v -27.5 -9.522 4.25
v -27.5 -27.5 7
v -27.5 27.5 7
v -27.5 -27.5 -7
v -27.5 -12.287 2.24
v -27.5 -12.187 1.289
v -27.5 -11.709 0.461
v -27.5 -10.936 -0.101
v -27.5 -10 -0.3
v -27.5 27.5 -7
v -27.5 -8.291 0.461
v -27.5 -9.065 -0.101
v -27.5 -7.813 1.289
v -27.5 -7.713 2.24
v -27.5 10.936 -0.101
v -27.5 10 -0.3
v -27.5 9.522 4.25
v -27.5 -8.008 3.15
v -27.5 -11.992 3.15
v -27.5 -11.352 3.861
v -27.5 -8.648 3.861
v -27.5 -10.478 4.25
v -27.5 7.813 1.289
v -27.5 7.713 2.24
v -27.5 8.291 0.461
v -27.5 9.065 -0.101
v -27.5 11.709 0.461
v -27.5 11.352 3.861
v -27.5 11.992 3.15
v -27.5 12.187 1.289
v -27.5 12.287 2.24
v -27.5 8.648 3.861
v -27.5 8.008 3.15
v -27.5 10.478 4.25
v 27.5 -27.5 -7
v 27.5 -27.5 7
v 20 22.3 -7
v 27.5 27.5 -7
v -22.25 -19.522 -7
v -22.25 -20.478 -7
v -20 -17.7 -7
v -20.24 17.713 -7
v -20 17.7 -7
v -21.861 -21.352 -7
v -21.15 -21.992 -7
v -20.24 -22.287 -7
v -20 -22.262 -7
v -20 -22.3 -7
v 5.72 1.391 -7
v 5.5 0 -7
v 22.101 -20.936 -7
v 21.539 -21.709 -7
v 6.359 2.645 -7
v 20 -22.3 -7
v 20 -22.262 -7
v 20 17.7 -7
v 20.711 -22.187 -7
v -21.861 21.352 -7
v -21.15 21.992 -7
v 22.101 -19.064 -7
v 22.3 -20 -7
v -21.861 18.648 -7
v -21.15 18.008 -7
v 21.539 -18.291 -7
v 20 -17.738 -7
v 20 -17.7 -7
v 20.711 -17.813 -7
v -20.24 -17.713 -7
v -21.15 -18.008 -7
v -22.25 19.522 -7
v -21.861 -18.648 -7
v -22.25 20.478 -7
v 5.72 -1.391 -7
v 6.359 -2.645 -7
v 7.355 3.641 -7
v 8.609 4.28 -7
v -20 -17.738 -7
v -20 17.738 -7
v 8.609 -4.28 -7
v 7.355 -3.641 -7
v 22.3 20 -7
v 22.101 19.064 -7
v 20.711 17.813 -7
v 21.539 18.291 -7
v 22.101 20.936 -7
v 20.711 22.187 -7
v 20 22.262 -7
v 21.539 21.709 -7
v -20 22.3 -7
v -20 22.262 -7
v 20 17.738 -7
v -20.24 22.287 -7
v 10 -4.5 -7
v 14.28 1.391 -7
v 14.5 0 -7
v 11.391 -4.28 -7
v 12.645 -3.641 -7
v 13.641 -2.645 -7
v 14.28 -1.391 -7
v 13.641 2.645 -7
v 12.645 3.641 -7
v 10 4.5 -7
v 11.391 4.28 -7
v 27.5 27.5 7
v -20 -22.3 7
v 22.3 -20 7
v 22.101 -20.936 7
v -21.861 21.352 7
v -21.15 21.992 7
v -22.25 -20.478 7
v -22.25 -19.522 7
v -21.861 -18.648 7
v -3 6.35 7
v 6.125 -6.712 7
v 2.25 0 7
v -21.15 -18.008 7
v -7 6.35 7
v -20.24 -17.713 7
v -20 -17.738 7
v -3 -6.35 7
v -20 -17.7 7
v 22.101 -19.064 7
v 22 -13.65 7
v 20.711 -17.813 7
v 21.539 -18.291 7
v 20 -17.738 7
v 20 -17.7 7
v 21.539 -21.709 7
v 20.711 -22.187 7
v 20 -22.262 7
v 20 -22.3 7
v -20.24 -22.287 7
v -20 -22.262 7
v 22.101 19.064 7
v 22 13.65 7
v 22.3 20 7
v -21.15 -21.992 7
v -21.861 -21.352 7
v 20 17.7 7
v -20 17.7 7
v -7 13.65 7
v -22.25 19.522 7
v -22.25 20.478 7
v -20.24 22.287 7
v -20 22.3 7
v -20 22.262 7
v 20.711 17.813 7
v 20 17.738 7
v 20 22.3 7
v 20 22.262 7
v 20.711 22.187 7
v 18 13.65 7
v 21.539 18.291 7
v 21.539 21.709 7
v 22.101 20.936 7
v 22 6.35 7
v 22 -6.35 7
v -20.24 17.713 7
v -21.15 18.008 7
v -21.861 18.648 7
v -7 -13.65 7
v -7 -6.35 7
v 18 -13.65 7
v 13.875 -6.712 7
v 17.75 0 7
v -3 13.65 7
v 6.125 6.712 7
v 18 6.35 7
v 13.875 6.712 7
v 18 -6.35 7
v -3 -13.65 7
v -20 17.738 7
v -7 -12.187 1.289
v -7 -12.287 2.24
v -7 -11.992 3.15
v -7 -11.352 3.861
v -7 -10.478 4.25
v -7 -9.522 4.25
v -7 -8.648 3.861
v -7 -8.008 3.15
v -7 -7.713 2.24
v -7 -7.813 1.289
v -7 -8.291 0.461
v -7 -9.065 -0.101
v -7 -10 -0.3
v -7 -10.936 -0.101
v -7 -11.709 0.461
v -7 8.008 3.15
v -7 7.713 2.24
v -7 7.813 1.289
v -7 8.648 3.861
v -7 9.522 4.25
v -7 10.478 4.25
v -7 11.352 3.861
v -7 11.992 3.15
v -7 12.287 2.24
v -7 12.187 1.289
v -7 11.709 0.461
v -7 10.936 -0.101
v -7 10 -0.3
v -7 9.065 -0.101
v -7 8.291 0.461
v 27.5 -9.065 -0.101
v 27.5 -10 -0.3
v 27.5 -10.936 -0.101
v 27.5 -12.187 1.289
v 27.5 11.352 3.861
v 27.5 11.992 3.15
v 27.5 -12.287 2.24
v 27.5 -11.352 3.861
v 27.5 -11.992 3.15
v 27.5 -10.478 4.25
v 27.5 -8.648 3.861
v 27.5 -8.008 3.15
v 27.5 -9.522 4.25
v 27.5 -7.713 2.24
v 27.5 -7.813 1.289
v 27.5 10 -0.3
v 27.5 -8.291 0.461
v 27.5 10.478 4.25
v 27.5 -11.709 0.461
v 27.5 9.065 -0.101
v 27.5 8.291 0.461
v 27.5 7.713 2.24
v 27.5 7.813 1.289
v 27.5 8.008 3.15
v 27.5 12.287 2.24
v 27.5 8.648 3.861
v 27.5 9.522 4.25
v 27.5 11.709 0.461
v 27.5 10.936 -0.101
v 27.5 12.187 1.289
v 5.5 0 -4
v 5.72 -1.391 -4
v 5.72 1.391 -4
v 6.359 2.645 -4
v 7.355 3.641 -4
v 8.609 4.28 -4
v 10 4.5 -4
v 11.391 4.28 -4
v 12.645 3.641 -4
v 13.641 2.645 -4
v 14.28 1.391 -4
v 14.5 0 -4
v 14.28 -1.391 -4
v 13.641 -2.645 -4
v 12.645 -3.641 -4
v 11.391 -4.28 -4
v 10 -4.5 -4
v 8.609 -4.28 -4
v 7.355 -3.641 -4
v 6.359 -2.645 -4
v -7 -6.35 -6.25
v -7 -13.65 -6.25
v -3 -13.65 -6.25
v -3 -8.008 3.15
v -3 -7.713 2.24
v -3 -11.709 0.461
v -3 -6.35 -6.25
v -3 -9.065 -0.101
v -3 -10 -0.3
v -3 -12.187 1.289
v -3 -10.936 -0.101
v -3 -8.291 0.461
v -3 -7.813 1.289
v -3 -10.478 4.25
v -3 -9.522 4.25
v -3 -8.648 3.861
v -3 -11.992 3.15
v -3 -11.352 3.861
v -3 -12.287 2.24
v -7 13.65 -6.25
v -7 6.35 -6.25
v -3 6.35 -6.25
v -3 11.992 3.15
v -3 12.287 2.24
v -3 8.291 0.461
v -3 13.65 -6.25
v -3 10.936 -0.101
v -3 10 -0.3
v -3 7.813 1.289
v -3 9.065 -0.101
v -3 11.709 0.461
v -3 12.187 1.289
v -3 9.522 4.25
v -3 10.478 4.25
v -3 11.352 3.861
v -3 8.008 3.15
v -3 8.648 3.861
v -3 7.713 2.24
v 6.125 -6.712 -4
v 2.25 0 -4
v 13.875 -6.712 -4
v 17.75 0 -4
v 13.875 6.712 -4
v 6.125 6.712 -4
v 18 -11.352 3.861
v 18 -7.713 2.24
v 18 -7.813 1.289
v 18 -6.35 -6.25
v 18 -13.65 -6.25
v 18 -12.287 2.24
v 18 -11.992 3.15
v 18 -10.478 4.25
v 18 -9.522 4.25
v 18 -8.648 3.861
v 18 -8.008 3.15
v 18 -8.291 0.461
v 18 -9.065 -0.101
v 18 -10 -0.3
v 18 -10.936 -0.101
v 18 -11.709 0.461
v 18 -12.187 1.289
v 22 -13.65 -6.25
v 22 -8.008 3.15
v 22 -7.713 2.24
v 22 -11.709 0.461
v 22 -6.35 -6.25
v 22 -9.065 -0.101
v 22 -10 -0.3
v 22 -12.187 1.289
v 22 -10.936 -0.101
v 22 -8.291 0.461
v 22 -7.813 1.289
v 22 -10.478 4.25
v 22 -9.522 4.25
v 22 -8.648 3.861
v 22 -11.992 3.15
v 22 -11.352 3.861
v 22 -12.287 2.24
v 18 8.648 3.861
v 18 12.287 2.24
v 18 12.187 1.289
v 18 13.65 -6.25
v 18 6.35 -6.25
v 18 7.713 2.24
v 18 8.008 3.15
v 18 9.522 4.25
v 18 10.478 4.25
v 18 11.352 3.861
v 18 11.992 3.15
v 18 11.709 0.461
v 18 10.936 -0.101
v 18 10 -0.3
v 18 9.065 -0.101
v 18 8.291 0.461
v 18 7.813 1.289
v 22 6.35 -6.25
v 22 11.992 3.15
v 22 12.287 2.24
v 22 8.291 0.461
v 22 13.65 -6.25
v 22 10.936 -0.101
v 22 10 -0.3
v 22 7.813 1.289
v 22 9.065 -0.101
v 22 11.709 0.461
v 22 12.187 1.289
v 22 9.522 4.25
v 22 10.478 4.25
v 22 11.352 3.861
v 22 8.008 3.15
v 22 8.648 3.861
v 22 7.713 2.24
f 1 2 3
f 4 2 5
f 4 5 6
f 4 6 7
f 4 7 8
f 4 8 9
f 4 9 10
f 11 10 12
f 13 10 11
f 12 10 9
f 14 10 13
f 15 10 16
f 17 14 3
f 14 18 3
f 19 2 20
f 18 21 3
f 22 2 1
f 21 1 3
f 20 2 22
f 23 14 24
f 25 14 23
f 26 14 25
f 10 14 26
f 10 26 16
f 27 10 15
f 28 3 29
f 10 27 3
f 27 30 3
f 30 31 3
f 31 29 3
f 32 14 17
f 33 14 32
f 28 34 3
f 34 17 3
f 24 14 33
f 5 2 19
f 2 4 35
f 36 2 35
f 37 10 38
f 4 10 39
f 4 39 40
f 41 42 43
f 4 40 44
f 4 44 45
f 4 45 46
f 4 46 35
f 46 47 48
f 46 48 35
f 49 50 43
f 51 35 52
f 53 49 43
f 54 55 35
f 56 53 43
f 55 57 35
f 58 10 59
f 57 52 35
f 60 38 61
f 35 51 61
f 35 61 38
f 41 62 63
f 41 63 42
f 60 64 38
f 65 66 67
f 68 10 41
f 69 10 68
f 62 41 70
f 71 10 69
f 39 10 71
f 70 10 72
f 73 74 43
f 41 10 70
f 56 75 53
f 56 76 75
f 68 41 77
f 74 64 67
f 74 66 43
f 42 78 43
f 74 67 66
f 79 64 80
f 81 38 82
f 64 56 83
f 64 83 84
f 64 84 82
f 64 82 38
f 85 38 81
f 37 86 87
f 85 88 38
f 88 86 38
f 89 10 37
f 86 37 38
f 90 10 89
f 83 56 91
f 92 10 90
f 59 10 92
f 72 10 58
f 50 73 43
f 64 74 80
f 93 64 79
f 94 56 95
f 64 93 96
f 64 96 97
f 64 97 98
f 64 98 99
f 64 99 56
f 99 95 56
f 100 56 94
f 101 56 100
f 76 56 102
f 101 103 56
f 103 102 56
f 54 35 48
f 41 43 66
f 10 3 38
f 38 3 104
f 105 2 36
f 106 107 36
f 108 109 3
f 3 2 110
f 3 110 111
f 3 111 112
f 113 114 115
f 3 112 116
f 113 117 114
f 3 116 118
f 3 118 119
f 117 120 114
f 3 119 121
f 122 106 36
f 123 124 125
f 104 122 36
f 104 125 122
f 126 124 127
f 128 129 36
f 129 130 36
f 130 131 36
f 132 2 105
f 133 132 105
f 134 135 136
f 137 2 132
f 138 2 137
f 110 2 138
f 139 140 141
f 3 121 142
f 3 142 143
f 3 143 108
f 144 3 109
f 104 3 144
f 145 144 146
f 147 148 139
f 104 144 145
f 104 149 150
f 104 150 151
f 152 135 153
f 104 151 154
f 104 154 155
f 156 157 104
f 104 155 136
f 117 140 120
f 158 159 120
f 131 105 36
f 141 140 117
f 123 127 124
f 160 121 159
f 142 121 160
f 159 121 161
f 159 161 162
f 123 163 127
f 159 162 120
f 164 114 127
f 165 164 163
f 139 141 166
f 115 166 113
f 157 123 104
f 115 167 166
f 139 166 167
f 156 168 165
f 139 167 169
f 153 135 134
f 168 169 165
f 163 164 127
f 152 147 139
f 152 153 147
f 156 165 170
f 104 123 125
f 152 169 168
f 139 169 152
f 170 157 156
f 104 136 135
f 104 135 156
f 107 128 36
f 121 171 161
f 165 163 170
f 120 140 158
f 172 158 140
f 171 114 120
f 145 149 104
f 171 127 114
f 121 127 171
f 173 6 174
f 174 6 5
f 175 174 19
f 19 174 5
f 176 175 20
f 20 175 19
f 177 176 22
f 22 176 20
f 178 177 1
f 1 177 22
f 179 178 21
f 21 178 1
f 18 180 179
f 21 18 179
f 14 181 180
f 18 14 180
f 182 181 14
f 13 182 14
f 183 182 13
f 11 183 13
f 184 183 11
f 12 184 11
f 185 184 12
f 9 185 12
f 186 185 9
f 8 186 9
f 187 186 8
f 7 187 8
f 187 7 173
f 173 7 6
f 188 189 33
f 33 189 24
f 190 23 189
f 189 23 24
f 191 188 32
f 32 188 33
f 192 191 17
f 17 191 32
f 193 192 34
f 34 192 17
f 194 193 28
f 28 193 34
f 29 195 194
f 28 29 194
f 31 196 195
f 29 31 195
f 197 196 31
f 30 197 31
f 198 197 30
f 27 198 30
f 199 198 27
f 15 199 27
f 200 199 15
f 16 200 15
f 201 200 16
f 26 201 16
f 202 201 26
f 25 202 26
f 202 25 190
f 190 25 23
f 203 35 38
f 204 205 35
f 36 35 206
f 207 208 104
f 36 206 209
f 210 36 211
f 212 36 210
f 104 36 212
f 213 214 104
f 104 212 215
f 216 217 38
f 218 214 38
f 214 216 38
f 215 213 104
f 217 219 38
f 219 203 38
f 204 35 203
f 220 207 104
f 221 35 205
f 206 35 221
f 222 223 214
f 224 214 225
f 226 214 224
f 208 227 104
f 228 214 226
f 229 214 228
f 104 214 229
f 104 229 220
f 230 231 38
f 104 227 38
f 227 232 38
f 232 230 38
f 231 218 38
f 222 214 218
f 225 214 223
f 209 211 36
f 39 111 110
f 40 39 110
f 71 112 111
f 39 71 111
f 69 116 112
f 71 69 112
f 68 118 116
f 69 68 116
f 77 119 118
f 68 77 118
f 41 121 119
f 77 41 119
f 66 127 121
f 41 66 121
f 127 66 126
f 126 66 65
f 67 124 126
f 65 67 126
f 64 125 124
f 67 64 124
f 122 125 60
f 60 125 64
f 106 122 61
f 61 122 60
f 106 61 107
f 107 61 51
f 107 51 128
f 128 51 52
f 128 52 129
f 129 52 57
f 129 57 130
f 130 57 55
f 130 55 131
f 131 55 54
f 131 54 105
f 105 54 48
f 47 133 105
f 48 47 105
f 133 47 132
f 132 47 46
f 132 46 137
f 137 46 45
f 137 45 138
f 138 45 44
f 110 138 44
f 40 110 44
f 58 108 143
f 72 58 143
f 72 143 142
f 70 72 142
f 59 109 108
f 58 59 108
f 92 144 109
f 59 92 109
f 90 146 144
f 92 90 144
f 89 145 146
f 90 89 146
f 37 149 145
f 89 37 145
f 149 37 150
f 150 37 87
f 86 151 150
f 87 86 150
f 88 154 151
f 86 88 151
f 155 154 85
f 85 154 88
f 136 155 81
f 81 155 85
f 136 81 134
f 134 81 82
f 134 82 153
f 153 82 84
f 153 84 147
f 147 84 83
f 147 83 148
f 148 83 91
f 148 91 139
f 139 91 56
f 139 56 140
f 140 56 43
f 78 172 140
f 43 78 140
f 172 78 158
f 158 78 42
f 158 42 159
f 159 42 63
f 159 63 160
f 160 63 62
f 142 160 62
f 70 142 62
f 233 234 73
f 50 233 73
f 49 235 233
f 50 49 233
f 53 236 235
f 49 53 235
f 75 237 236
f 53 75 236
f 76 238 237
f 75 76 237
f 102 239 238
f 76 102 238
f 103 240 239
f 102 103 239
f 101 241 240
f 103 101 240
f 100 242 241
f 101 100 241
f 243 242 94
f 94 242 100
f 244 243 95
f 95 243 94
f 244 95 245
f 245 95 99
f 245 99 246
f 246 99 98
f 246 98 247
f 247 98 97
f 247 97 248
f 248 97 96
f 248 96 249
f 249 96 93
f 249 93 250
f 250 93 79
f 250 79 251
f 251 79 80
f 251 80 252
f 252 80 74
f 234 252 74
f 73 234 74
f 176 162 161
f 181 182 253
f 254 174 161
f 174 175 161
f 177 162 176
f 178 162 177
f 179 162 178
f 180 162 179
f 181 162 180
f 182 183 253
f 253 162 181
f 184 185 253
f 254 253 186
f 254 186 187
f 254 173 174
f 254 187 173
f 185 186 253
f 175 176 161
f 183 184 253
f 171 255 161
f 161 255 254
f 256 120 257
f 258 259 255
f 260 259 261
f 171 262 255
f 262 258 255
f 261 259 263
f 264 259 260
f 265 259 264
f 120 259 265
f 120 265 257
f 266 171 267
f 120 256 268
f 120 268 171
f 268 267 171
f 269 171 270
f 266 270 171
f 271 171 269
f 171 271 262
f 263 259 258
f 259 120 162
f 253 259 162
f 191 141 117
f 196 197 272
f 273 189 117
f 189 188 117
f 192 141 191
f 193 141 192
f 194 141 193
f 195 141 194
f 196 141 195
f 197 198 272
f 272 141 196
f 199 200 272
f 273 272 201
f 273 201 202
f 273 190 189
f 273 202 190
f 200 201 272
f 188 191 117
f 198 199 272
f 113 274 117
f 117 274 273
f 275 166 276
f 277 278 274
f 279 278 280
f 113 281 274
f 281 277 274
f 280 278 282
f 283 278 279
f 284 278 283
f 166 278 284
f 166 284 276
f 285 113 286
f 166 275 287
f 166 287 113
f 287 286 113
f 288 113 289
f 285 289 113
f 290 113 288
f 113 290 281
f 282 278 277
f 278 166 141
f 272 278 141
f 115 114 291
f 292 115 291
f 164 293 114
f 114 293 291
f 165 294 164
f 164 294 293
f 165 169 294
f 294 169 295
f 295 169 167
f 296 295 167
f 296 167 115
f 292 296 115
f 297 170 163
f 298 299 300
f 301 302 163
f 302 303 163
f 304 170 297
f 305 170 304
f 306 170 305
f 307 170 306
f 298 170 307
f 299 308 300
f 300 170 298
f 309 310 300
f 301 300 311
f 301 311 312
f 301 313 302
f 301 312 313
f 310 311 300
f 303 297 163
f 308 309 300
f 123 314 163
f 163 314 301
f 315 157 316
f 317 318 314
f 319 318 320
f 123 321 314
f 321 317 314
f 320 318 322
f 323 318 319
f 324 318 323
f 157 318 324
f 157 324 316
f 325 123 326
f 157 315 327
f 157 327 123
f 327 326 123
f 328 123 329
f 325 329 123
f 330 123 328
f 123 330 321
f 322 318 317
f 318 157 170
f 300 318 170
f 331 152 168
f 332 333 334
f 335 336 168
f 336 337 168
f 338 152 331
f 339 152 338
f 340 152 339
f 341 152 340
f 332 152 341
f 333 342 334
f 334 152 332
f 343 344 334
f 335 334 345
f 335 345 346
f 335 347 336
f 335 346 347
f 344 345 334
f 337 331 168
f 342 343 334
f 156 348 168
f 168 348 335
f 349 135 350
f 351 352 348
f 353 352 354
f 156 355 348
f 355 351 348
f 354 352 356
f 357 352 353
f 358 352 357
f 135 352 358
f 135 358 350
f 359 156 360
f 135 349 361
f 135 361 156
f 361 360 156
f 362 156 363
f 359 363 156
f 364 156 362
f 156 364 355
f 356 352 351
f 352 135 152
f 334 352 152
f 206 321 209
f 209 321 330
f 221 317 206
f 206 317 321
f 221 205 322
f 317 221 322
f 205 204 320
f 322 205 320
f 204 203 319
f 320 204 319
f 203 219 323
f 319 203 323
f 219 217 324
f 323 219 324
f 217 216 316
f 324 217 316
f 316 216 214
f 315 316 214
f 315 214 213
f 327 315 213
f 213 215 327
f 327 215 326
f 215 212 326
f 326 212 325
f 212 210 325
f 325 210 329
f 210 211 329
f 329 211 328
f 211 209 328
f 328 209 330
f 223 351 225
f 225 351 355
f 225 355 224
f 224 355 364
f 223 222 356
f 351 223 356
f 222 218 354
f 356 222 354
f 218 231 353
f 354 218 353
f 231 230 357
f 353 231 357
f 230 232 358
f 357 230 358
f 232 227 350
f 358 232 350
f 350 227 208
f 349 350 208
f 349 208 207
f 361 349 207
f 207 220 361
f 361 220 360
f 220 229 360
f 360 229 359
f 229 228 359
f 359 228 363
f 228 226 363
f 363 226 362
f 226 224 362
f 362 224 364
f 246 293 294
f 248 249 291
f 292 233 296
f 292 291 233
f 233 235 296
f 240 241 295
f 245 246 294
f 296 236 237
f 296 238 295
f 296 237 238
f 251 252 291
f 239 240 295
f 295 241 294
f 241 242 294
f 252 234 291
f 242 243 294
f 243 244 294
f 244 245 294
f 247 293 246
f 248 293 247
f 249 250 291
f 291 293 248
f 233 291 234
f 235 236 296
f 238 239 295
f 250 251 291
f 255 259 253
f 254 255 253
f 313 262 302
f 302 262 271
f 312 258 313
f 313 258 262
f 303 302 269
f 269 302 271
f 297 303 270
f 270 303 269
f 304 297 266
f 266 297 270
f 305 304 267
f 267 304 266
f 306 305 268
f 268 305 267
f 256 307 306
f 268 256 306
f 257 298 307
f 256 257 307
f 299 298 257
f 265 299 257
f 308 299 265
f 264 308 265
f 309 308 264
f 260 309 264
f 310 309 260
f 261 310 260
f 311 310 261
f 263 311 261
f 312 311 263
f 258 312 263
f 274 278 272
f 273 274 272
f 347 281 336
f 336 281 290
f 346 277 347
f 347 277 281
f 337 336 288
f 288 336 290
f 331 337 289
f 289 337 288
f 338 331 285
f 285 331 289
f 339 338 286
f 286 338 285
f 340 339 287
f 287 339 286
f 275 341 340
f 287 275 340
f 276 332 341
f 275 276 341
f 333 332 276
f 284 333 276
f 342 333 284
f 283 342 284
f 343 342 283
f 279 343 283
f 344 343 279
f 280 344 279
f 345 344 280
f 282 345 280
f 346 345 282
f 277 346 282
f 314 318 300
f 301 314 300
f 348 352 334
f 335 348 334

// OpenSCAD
ancho_pared=7;


module cubre_tensor(){
	difference(){
		
		//CUERPO CENTRAL
		union(){
			cube([55,55,14],center=true);
			
			
			//pestañas de montaje
			/*translate([2.5,60/2,5]) rotate([0,0,0])
			cube([65,10,4],center=true);

			translate([2.5,-60/2,5]) rotate([0,0,0])
			cube([65,10,4],center=true);
			
			
			
			//suplemento
			translate([60/2,0,0]) rotate([0,0,0])
			cube([10,50,14],center=true);
			*/
			
		}
		//VACIADO tuerca
		translate([10,0,3]) rotate([0,0,0])
		//cube([50,42,16],center=true);
		cylinder(r=15.5/2,h=14, $fn=6, center=true);
		
		//AGUJERO INFERIOR EJE
		translate([10,0,3]) rotate([0,0,0])
		cylinder(r=9/2,h=100, $fn=20, center=true);
		
		//AGUJERO TENSOR
		translate([0,10,2]) rotate([0,90,0])
		cylinder(r=4.6/2,h=100,center=true , $fn=15);

		
		//AGUJERO TENSOR
		translate([0,-10,2]) rotate([0,90,0])
		cylinder(r=4.6/2,h=100,center=true , $fn=15);
	
				

		//alojmaiento tuerca

		translate([40/2,10,0.75]) rotate([0,0,0])
		cube([4,7.30,14],center=true);
		
		translate([40/2,-10,0.75]) rotate([0,0,0])
		cube([4,7.30,14],center=true);

		

		translate([-10/2,10,0.75]) rotate([0,0,0])
		cube([4,7.30,14],center=true);
		
		translate([-10/2,-10,0.75]) rotate([0,0,0])
		cube([4,7.30,14],center=true);
		
		//agujero montaje
		translate([40/2,40/2,0]) rotate([0,0,0])
		cylinder(r=4.6/2,h=100,center=true , $fn=15);
		
		translate([-40/2,40/2,0]) rotate([0,0,0])
		cylinder(r=4.6/2,h=100,center=true , $fn=15);

		translate([40/2,-40/2,0]) rotate([0,0,0])
		cylinder(r=4.6/2,h=100,center=true , $fn=15);

		translate([-40/2,-40/2,0]) rotate([0,0,0])
		cylinder(r=4.6/2,h=100,center=true , $fn=15);
		
		translate([-25/2,-40/2,0]) rotate([0,0,0])
		cylinder(r=4.6/2,h=100,center=true , $fn=15);

		translate([0,40/2,5]) rotate([0,0,0])
			cube([40,4.60,100],center=true);

		translate([0,-40/2,5]) rotate([0,0,0])
			cube([40,4.60,100],center=true);
		

		/*//agujeros para aligerar
		translate([15,15,0]) rotate([0,0,0])
		cylinder(r=15/2,h=100,center=true , $fn=15);
		translate([-11,15,0]) rotate([0,0,0])
		cylinder(r=15/2,h=100,center=true , $fn=15);
		translate([15,-15,0]) rotate([0,0,0])
		cylinder(r=15/2,h=100,center=true , $fn=15);
		translate([-11,-15,0]) rotate([0,0,0])
		cylinder(r=15/2,h=100,center=true , $fn=15);

		translate([-19,0,0]) rotate([0,0,0])
		cylinder(r=14/2,h=100,center=true , $fn=15);
		translate([23,0,0]) rotate([0,0,0])
		cylinder(r=14/2,h=100,center=true , $fn=15);
		*/
	}
}


translate([0,0,0]) rotate([0,0,0])
cubre_tensor();
